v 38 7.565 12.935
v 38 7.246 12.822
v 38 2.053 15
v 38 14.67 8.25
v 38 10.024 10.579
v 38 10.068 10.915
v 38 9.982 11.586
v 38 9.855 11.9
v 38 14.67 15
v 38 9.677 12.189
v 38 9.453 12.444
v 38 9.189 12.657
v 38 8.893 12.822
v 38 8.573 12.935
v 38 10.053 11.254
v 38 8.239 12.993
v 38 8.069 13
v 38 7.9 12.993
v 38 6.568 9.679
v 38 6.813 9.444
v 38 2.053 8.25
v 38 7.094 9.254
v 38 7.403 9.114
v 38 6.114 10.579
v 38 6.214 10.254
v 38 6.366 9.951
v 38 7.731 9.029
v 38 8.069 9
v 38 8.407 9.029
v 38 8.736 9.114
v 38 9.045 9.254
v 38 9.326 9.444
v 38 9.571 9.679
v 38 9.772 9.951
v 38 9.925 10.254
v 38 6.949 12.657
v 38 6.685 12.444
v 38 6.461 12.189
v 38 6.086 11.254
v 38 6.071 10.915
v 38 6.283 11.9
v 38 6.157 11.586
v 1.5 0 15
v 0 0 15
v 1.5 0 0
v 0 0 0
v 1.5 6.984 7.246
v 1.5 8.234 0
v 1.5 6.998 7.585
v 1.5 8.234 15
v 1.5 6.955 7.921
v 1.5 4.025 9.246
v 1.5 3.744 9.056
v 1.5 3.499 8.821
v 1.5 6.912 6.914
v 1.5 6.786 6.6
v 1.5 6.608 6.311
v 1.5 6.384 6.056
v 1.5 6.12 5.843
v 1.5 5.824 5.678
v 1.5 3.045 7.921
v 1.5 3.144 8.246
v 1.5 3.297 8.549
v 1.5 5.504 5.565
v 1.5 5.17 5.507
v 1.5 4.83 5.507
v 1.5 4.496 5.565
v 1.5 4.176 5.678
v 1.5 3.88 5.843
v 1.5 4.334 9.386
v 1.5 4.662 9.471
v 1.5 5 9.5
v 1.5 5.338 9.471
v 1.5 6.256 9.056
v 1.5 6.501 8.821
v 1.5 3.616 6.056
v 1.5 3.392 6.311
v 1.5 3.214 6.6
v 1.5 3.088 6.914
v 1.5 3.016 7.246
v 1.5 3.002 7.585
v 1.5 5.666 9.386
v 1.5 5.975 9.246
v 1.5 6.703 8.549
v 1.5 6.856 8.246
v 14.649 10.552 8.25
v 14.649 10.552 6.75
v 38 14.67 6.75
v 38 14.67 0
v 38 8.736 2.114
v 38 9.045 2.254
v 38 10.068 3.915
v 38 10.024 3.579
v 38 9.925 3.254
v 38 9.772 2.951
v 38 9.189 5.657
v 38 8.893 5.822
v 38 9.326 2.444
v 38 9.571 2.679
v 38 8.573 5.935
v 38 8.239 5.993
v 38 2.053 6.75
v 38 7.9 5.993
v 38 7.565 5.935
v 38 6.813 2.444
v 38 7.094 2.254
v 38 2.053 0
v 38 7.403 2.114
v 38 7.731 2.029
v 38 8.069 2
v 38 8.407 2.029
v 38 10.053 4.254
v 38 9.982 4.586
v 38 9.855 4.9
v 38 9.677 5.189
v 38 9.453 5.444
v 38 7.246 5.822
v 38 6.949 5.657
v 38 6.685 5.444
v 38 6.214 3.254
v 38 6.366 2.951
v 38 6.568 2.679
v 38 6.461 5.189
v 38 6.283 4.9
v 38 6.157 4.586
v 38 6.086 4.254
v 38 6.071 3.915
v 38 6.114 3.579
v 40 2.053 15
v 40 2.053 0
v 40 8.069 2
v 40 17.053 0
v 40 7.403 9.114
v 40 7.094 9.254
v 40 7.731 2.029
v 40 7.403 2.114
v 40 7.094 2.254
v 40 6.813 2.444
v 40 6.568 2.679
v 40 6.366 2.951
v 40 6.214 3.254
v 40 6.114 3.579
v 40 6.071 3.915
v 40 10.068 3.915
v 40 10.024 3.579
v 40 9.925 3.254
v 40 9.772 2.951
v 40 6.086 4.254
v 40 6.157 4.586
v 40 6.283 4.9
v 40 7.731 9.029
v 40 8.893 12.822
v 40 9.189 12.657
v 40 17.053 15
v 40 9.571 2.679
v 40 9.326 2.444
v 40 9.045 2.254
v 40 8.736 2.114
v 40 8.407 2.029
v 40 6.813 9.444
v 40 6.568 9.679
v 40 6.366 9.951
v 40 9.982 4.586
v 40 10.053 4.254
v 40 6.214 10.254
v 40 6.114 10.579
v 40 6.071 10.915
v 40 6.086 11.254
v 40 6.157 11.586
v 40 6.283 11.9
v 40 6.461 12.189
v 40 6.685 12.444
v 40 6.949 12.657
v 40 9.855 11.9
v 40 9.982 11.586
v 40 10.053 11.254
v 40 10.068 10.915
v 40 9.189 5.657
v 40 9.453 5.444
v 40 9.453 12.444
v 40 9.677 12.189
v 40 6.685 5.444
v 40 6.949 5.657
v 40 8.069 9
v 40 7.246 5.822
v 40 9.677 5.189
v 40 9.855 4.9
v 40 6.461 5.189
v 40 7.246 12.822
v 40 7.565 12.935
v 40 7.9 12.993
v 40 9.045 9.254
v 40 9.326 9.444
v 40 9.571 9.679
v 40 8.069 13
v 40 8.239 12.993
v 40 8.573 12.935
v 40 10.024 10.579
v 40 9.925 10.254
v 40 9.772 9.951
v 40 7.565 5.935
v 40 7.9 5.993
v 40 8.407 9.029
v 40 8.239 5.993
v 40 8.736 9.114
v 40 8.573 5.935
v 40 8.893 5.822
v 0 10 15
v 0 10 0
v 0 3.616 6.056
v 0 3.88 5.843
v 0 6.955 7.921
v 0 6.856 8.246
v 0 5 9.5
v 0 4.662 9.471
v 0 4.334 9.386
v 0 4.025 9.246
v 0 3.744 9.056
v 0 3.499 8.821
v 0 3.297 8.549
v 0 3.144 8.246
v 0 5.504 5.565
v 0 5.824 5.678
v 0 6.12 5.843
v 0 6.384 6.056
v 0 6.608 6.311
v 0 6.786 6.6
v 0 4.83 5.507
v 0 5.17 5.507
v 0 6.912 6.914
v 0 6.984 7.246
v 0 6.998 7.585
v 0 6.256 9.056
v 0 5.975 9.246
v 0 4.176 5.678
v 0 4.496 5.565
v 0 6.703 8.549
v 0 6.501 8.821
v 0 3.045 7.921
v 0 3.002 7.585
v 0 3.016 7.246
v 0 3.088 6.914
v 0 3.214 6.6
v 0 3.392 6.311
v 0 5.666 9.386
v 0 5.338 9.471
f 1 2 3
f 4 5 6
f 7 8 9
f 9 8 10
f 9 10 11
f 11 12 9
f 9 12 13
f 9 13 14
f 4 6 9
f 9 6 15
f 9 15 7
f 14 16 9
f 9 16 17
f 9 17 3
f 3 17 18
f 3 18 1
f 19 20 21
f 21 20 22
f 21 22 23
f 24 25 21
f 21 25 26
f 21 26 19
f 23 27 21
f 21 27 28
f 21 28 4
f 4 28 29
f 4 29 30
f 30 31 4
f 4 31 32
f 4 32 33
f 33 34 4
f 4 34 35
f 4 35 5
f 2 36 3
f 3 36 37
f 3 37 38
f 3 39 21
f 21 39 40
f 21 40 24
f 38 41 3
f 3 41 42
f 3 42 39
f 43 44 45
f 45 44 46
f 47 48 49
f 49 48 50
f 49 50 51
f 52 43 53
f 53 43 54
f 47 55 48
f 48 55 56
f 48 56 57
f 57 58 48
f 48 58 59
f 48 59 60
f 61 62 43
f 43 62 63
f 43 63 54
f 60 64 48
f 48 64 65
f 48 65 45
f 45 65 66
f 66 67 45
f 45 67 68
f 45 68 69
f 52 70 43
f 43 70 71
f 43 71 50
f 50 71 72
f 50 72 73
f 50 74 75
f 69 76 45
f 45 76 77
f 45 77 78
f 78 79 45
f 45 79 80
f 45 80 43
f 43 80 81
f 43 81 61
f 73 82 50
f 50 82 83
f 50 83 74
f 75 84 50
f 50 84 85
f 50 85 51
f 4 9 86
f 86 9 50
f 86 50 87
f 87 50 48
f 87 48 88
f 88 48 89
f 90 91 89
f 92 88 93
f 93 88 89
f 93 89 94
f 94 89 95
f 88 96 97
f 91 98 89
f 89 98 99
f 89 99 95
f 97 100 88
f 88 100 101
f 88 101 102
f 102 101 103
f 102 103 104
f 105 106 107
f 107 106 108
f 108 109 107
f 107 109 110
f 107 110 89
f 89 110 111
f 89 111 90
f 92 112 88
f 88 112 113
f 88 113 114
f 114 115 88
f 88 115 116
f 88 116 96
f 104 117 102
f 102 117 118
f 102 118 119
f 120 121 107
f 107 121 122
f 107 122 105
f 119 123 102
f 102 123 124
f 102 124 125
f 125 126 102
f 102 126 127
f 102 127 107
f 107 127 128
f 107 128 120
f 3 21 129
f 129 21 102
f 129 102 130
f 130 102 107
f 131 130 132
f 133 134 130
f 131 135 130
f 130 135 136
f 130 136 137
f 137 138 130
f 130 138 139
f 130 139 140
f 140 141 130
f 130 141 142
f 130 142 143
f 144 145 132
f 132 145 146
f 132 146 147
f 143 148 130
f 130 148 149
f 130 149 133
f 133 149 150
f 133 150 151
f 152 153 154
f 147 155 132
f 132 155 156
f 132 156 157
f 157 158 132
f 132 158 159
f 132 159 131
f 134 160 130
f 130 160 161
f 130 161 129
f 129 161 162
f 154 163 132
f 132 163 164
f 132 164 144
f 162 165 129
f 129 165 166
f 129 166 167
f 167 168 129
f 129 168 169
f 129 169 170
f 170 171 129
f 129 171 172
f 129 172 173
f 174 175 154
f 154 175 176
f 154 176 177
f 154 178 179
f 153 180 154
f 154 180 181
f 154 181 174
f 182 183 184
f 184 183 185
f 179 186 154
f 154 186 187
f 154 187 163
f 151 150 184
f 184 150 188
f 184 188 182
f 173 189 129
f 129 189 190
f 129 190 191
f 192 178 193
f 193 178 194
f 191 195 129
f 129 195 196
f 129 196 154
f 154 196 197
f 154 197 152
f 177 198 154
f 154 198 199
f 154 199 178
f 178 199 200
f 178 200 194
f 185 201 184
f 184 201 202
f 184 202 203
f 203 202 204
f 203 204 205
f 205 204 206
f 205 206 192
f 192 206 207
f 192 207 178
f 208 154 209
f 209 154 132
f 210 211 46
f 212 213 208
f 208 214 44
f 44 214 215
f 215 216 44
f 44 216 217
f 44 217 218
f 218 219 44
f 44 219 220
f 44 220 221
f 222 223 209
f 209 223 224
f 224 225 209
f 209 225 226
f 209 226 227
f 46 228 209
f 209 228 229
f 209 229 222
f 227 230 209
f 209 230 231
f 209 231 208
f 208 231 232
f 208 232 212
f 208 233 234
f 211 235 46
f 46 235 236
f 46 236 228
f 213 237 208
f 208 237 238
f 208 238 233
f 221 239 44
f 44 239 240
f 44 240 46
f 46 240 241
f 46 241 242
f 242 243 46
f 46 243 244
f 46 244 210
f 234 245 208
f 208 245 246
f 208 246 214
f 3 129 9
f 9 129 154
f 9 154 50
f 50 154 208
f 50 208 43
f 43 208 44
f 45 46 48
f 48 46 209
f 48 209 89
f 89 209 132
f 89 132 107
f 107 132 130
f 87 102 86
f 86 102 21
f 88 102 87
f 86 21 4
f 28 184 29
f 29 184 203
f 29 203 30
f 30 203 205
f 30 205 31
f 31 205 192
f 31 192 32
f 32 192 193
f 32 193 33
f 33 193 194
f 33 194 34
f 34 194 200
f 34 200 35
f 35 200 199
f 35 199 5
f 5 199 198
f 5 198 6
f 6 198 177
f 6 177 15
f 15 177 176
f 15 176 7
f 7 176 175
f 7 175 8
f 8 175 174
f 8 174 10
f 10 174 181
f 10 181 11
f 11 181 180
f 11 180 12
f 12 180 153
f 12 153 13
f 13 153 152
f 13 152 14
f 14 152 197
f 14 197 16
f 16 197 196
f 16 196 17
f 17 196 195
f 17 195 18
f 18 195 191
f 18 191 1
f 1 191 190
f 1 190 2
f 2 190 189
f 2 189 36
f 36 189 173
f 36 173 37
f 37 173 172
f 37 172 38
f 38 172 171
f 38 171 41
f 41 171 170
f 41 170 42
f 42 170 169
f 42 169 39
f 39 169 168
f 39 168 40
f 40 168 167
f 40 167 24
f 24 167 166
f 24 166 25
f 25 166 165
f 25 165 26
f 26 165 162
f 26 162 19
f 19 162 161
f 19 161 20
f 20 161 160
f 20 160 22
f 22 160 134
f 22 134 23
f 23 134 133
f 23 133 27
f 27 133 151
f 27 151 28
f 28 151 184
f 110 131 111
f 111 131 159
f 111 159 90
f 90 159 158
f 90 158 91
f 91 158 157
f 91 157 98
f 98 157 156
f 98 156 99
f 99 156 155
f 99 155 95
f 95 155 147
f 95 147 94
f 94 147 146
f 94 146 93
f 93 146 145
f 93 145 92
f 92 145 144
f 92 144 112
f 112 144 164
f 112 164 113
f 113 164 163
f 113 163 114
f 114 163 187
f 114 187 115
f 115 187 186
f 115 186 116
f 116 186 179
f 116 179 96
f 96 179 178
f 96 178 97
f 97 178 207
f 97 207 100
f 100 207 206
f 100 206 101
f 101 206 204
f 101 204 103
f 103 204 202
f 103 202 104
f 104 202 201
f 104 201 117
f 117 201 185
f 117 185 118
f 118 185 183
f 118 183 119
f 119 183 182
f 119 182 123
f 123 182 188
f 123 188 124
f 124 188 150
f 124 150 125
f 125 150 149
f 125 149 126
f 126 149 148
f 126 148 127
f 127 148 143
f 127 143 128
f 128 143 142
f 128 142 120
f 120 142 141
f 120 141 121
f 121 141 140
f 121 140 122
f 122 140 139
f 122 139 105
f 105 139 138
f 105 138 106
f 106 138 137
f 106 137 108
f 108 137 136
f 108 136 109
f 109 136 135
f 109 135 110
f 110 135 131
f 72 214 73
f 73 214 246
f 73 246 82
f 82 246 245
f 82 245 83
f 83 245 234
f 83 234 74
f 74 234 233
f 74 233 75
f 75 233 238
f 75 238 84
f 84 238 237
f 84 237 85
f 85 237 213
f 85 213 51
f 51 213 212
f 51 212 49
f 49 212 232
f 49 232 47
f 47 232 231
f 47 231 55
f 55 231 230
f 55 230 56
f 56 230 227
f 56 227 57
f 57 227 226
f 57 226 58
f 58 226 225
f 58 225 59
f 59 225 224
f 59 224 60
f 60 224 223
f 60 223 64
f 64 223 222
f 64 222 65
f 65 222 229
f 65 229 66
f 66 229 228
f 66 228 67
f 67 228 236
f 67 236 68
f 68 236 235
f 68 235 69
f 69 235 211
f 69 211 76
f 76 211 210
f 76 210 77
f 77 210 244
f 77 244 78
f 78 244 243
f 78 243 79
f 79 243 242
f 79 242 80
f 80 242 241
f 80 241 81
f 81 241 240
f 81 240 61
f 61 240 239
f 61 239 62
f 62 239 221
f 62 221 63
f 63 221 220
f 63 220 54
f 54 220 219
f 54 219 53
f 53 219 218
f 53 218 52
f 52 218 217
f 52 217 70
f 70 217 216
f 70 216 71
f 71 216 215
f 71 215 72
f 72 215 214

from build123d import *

# Parameters (mm, degrees)
BOSS_EXTRUDE1_DEPTH = 15
BOSS_EXTRUDE2_DEPTH = 0.75
SKETCH6_R           = 2
CUT_EXTRUDE1_DEPTH  = 2
SKETCH7_R           = 2
CUT_EXTRUDE2_DEPTH  = 1.5


with BuildPart() as part:
    # Sketch1 → Boss-Extrude1 (new body)
    with BuildSketch(Plane.XY):
        Polygon((0, 0), (0, 10), (40, 17.053079228), (40, 2.053079228), (38, 2.053079228), (38, 14.669572043), (1.5, 8.233637247), (1.5, 0), align=None)
    extrude(amount=BOSS_EXTRUDE1_DEPTH)

    # Sketch5 → Boss-Extrude2 (add, symmetric)
    with BuildSketch(Plane(origin=(0, 0, 7.5), x_dir=(-1, 0, 0), z_dir=(0, 0, -1))):
        Polygon((-38, 14.669572043), (-38, 2.053079228), (-14.648976776, 10.552156622), align=None)
    extrude(amount=BOSS_EXTRUDE2_DEPTH, both=True)

    # Sketch6 → Cut-Extrude1 (cut)
    with BuildSketch(Plane(origin=(40, 0, 0), x_dir=(0, 0, -1), z_dir=(1, 0, 0))):
        with Locations((-4, 8.069303899)):
            Circle(SKETCH6_R)
        with Locations((-11, 8.069303899)):
            Circle(SKETCH6_R)
    extrude(amount=-CUT_EXTRUDE1_DEPTH, mode=Mode.SUBTRACT)

    # Sketch7 → Cut-Extrude2 (cut)
    with BuildSketch(Plane.ZY):
        with Locations((7.5, 5)):
            Circle(SKETCH7_R)
    extrude(amount=-CUT_EXTRUDE2_DEPTH, mode=Mode.SUBTRACT)


solid = part.part
